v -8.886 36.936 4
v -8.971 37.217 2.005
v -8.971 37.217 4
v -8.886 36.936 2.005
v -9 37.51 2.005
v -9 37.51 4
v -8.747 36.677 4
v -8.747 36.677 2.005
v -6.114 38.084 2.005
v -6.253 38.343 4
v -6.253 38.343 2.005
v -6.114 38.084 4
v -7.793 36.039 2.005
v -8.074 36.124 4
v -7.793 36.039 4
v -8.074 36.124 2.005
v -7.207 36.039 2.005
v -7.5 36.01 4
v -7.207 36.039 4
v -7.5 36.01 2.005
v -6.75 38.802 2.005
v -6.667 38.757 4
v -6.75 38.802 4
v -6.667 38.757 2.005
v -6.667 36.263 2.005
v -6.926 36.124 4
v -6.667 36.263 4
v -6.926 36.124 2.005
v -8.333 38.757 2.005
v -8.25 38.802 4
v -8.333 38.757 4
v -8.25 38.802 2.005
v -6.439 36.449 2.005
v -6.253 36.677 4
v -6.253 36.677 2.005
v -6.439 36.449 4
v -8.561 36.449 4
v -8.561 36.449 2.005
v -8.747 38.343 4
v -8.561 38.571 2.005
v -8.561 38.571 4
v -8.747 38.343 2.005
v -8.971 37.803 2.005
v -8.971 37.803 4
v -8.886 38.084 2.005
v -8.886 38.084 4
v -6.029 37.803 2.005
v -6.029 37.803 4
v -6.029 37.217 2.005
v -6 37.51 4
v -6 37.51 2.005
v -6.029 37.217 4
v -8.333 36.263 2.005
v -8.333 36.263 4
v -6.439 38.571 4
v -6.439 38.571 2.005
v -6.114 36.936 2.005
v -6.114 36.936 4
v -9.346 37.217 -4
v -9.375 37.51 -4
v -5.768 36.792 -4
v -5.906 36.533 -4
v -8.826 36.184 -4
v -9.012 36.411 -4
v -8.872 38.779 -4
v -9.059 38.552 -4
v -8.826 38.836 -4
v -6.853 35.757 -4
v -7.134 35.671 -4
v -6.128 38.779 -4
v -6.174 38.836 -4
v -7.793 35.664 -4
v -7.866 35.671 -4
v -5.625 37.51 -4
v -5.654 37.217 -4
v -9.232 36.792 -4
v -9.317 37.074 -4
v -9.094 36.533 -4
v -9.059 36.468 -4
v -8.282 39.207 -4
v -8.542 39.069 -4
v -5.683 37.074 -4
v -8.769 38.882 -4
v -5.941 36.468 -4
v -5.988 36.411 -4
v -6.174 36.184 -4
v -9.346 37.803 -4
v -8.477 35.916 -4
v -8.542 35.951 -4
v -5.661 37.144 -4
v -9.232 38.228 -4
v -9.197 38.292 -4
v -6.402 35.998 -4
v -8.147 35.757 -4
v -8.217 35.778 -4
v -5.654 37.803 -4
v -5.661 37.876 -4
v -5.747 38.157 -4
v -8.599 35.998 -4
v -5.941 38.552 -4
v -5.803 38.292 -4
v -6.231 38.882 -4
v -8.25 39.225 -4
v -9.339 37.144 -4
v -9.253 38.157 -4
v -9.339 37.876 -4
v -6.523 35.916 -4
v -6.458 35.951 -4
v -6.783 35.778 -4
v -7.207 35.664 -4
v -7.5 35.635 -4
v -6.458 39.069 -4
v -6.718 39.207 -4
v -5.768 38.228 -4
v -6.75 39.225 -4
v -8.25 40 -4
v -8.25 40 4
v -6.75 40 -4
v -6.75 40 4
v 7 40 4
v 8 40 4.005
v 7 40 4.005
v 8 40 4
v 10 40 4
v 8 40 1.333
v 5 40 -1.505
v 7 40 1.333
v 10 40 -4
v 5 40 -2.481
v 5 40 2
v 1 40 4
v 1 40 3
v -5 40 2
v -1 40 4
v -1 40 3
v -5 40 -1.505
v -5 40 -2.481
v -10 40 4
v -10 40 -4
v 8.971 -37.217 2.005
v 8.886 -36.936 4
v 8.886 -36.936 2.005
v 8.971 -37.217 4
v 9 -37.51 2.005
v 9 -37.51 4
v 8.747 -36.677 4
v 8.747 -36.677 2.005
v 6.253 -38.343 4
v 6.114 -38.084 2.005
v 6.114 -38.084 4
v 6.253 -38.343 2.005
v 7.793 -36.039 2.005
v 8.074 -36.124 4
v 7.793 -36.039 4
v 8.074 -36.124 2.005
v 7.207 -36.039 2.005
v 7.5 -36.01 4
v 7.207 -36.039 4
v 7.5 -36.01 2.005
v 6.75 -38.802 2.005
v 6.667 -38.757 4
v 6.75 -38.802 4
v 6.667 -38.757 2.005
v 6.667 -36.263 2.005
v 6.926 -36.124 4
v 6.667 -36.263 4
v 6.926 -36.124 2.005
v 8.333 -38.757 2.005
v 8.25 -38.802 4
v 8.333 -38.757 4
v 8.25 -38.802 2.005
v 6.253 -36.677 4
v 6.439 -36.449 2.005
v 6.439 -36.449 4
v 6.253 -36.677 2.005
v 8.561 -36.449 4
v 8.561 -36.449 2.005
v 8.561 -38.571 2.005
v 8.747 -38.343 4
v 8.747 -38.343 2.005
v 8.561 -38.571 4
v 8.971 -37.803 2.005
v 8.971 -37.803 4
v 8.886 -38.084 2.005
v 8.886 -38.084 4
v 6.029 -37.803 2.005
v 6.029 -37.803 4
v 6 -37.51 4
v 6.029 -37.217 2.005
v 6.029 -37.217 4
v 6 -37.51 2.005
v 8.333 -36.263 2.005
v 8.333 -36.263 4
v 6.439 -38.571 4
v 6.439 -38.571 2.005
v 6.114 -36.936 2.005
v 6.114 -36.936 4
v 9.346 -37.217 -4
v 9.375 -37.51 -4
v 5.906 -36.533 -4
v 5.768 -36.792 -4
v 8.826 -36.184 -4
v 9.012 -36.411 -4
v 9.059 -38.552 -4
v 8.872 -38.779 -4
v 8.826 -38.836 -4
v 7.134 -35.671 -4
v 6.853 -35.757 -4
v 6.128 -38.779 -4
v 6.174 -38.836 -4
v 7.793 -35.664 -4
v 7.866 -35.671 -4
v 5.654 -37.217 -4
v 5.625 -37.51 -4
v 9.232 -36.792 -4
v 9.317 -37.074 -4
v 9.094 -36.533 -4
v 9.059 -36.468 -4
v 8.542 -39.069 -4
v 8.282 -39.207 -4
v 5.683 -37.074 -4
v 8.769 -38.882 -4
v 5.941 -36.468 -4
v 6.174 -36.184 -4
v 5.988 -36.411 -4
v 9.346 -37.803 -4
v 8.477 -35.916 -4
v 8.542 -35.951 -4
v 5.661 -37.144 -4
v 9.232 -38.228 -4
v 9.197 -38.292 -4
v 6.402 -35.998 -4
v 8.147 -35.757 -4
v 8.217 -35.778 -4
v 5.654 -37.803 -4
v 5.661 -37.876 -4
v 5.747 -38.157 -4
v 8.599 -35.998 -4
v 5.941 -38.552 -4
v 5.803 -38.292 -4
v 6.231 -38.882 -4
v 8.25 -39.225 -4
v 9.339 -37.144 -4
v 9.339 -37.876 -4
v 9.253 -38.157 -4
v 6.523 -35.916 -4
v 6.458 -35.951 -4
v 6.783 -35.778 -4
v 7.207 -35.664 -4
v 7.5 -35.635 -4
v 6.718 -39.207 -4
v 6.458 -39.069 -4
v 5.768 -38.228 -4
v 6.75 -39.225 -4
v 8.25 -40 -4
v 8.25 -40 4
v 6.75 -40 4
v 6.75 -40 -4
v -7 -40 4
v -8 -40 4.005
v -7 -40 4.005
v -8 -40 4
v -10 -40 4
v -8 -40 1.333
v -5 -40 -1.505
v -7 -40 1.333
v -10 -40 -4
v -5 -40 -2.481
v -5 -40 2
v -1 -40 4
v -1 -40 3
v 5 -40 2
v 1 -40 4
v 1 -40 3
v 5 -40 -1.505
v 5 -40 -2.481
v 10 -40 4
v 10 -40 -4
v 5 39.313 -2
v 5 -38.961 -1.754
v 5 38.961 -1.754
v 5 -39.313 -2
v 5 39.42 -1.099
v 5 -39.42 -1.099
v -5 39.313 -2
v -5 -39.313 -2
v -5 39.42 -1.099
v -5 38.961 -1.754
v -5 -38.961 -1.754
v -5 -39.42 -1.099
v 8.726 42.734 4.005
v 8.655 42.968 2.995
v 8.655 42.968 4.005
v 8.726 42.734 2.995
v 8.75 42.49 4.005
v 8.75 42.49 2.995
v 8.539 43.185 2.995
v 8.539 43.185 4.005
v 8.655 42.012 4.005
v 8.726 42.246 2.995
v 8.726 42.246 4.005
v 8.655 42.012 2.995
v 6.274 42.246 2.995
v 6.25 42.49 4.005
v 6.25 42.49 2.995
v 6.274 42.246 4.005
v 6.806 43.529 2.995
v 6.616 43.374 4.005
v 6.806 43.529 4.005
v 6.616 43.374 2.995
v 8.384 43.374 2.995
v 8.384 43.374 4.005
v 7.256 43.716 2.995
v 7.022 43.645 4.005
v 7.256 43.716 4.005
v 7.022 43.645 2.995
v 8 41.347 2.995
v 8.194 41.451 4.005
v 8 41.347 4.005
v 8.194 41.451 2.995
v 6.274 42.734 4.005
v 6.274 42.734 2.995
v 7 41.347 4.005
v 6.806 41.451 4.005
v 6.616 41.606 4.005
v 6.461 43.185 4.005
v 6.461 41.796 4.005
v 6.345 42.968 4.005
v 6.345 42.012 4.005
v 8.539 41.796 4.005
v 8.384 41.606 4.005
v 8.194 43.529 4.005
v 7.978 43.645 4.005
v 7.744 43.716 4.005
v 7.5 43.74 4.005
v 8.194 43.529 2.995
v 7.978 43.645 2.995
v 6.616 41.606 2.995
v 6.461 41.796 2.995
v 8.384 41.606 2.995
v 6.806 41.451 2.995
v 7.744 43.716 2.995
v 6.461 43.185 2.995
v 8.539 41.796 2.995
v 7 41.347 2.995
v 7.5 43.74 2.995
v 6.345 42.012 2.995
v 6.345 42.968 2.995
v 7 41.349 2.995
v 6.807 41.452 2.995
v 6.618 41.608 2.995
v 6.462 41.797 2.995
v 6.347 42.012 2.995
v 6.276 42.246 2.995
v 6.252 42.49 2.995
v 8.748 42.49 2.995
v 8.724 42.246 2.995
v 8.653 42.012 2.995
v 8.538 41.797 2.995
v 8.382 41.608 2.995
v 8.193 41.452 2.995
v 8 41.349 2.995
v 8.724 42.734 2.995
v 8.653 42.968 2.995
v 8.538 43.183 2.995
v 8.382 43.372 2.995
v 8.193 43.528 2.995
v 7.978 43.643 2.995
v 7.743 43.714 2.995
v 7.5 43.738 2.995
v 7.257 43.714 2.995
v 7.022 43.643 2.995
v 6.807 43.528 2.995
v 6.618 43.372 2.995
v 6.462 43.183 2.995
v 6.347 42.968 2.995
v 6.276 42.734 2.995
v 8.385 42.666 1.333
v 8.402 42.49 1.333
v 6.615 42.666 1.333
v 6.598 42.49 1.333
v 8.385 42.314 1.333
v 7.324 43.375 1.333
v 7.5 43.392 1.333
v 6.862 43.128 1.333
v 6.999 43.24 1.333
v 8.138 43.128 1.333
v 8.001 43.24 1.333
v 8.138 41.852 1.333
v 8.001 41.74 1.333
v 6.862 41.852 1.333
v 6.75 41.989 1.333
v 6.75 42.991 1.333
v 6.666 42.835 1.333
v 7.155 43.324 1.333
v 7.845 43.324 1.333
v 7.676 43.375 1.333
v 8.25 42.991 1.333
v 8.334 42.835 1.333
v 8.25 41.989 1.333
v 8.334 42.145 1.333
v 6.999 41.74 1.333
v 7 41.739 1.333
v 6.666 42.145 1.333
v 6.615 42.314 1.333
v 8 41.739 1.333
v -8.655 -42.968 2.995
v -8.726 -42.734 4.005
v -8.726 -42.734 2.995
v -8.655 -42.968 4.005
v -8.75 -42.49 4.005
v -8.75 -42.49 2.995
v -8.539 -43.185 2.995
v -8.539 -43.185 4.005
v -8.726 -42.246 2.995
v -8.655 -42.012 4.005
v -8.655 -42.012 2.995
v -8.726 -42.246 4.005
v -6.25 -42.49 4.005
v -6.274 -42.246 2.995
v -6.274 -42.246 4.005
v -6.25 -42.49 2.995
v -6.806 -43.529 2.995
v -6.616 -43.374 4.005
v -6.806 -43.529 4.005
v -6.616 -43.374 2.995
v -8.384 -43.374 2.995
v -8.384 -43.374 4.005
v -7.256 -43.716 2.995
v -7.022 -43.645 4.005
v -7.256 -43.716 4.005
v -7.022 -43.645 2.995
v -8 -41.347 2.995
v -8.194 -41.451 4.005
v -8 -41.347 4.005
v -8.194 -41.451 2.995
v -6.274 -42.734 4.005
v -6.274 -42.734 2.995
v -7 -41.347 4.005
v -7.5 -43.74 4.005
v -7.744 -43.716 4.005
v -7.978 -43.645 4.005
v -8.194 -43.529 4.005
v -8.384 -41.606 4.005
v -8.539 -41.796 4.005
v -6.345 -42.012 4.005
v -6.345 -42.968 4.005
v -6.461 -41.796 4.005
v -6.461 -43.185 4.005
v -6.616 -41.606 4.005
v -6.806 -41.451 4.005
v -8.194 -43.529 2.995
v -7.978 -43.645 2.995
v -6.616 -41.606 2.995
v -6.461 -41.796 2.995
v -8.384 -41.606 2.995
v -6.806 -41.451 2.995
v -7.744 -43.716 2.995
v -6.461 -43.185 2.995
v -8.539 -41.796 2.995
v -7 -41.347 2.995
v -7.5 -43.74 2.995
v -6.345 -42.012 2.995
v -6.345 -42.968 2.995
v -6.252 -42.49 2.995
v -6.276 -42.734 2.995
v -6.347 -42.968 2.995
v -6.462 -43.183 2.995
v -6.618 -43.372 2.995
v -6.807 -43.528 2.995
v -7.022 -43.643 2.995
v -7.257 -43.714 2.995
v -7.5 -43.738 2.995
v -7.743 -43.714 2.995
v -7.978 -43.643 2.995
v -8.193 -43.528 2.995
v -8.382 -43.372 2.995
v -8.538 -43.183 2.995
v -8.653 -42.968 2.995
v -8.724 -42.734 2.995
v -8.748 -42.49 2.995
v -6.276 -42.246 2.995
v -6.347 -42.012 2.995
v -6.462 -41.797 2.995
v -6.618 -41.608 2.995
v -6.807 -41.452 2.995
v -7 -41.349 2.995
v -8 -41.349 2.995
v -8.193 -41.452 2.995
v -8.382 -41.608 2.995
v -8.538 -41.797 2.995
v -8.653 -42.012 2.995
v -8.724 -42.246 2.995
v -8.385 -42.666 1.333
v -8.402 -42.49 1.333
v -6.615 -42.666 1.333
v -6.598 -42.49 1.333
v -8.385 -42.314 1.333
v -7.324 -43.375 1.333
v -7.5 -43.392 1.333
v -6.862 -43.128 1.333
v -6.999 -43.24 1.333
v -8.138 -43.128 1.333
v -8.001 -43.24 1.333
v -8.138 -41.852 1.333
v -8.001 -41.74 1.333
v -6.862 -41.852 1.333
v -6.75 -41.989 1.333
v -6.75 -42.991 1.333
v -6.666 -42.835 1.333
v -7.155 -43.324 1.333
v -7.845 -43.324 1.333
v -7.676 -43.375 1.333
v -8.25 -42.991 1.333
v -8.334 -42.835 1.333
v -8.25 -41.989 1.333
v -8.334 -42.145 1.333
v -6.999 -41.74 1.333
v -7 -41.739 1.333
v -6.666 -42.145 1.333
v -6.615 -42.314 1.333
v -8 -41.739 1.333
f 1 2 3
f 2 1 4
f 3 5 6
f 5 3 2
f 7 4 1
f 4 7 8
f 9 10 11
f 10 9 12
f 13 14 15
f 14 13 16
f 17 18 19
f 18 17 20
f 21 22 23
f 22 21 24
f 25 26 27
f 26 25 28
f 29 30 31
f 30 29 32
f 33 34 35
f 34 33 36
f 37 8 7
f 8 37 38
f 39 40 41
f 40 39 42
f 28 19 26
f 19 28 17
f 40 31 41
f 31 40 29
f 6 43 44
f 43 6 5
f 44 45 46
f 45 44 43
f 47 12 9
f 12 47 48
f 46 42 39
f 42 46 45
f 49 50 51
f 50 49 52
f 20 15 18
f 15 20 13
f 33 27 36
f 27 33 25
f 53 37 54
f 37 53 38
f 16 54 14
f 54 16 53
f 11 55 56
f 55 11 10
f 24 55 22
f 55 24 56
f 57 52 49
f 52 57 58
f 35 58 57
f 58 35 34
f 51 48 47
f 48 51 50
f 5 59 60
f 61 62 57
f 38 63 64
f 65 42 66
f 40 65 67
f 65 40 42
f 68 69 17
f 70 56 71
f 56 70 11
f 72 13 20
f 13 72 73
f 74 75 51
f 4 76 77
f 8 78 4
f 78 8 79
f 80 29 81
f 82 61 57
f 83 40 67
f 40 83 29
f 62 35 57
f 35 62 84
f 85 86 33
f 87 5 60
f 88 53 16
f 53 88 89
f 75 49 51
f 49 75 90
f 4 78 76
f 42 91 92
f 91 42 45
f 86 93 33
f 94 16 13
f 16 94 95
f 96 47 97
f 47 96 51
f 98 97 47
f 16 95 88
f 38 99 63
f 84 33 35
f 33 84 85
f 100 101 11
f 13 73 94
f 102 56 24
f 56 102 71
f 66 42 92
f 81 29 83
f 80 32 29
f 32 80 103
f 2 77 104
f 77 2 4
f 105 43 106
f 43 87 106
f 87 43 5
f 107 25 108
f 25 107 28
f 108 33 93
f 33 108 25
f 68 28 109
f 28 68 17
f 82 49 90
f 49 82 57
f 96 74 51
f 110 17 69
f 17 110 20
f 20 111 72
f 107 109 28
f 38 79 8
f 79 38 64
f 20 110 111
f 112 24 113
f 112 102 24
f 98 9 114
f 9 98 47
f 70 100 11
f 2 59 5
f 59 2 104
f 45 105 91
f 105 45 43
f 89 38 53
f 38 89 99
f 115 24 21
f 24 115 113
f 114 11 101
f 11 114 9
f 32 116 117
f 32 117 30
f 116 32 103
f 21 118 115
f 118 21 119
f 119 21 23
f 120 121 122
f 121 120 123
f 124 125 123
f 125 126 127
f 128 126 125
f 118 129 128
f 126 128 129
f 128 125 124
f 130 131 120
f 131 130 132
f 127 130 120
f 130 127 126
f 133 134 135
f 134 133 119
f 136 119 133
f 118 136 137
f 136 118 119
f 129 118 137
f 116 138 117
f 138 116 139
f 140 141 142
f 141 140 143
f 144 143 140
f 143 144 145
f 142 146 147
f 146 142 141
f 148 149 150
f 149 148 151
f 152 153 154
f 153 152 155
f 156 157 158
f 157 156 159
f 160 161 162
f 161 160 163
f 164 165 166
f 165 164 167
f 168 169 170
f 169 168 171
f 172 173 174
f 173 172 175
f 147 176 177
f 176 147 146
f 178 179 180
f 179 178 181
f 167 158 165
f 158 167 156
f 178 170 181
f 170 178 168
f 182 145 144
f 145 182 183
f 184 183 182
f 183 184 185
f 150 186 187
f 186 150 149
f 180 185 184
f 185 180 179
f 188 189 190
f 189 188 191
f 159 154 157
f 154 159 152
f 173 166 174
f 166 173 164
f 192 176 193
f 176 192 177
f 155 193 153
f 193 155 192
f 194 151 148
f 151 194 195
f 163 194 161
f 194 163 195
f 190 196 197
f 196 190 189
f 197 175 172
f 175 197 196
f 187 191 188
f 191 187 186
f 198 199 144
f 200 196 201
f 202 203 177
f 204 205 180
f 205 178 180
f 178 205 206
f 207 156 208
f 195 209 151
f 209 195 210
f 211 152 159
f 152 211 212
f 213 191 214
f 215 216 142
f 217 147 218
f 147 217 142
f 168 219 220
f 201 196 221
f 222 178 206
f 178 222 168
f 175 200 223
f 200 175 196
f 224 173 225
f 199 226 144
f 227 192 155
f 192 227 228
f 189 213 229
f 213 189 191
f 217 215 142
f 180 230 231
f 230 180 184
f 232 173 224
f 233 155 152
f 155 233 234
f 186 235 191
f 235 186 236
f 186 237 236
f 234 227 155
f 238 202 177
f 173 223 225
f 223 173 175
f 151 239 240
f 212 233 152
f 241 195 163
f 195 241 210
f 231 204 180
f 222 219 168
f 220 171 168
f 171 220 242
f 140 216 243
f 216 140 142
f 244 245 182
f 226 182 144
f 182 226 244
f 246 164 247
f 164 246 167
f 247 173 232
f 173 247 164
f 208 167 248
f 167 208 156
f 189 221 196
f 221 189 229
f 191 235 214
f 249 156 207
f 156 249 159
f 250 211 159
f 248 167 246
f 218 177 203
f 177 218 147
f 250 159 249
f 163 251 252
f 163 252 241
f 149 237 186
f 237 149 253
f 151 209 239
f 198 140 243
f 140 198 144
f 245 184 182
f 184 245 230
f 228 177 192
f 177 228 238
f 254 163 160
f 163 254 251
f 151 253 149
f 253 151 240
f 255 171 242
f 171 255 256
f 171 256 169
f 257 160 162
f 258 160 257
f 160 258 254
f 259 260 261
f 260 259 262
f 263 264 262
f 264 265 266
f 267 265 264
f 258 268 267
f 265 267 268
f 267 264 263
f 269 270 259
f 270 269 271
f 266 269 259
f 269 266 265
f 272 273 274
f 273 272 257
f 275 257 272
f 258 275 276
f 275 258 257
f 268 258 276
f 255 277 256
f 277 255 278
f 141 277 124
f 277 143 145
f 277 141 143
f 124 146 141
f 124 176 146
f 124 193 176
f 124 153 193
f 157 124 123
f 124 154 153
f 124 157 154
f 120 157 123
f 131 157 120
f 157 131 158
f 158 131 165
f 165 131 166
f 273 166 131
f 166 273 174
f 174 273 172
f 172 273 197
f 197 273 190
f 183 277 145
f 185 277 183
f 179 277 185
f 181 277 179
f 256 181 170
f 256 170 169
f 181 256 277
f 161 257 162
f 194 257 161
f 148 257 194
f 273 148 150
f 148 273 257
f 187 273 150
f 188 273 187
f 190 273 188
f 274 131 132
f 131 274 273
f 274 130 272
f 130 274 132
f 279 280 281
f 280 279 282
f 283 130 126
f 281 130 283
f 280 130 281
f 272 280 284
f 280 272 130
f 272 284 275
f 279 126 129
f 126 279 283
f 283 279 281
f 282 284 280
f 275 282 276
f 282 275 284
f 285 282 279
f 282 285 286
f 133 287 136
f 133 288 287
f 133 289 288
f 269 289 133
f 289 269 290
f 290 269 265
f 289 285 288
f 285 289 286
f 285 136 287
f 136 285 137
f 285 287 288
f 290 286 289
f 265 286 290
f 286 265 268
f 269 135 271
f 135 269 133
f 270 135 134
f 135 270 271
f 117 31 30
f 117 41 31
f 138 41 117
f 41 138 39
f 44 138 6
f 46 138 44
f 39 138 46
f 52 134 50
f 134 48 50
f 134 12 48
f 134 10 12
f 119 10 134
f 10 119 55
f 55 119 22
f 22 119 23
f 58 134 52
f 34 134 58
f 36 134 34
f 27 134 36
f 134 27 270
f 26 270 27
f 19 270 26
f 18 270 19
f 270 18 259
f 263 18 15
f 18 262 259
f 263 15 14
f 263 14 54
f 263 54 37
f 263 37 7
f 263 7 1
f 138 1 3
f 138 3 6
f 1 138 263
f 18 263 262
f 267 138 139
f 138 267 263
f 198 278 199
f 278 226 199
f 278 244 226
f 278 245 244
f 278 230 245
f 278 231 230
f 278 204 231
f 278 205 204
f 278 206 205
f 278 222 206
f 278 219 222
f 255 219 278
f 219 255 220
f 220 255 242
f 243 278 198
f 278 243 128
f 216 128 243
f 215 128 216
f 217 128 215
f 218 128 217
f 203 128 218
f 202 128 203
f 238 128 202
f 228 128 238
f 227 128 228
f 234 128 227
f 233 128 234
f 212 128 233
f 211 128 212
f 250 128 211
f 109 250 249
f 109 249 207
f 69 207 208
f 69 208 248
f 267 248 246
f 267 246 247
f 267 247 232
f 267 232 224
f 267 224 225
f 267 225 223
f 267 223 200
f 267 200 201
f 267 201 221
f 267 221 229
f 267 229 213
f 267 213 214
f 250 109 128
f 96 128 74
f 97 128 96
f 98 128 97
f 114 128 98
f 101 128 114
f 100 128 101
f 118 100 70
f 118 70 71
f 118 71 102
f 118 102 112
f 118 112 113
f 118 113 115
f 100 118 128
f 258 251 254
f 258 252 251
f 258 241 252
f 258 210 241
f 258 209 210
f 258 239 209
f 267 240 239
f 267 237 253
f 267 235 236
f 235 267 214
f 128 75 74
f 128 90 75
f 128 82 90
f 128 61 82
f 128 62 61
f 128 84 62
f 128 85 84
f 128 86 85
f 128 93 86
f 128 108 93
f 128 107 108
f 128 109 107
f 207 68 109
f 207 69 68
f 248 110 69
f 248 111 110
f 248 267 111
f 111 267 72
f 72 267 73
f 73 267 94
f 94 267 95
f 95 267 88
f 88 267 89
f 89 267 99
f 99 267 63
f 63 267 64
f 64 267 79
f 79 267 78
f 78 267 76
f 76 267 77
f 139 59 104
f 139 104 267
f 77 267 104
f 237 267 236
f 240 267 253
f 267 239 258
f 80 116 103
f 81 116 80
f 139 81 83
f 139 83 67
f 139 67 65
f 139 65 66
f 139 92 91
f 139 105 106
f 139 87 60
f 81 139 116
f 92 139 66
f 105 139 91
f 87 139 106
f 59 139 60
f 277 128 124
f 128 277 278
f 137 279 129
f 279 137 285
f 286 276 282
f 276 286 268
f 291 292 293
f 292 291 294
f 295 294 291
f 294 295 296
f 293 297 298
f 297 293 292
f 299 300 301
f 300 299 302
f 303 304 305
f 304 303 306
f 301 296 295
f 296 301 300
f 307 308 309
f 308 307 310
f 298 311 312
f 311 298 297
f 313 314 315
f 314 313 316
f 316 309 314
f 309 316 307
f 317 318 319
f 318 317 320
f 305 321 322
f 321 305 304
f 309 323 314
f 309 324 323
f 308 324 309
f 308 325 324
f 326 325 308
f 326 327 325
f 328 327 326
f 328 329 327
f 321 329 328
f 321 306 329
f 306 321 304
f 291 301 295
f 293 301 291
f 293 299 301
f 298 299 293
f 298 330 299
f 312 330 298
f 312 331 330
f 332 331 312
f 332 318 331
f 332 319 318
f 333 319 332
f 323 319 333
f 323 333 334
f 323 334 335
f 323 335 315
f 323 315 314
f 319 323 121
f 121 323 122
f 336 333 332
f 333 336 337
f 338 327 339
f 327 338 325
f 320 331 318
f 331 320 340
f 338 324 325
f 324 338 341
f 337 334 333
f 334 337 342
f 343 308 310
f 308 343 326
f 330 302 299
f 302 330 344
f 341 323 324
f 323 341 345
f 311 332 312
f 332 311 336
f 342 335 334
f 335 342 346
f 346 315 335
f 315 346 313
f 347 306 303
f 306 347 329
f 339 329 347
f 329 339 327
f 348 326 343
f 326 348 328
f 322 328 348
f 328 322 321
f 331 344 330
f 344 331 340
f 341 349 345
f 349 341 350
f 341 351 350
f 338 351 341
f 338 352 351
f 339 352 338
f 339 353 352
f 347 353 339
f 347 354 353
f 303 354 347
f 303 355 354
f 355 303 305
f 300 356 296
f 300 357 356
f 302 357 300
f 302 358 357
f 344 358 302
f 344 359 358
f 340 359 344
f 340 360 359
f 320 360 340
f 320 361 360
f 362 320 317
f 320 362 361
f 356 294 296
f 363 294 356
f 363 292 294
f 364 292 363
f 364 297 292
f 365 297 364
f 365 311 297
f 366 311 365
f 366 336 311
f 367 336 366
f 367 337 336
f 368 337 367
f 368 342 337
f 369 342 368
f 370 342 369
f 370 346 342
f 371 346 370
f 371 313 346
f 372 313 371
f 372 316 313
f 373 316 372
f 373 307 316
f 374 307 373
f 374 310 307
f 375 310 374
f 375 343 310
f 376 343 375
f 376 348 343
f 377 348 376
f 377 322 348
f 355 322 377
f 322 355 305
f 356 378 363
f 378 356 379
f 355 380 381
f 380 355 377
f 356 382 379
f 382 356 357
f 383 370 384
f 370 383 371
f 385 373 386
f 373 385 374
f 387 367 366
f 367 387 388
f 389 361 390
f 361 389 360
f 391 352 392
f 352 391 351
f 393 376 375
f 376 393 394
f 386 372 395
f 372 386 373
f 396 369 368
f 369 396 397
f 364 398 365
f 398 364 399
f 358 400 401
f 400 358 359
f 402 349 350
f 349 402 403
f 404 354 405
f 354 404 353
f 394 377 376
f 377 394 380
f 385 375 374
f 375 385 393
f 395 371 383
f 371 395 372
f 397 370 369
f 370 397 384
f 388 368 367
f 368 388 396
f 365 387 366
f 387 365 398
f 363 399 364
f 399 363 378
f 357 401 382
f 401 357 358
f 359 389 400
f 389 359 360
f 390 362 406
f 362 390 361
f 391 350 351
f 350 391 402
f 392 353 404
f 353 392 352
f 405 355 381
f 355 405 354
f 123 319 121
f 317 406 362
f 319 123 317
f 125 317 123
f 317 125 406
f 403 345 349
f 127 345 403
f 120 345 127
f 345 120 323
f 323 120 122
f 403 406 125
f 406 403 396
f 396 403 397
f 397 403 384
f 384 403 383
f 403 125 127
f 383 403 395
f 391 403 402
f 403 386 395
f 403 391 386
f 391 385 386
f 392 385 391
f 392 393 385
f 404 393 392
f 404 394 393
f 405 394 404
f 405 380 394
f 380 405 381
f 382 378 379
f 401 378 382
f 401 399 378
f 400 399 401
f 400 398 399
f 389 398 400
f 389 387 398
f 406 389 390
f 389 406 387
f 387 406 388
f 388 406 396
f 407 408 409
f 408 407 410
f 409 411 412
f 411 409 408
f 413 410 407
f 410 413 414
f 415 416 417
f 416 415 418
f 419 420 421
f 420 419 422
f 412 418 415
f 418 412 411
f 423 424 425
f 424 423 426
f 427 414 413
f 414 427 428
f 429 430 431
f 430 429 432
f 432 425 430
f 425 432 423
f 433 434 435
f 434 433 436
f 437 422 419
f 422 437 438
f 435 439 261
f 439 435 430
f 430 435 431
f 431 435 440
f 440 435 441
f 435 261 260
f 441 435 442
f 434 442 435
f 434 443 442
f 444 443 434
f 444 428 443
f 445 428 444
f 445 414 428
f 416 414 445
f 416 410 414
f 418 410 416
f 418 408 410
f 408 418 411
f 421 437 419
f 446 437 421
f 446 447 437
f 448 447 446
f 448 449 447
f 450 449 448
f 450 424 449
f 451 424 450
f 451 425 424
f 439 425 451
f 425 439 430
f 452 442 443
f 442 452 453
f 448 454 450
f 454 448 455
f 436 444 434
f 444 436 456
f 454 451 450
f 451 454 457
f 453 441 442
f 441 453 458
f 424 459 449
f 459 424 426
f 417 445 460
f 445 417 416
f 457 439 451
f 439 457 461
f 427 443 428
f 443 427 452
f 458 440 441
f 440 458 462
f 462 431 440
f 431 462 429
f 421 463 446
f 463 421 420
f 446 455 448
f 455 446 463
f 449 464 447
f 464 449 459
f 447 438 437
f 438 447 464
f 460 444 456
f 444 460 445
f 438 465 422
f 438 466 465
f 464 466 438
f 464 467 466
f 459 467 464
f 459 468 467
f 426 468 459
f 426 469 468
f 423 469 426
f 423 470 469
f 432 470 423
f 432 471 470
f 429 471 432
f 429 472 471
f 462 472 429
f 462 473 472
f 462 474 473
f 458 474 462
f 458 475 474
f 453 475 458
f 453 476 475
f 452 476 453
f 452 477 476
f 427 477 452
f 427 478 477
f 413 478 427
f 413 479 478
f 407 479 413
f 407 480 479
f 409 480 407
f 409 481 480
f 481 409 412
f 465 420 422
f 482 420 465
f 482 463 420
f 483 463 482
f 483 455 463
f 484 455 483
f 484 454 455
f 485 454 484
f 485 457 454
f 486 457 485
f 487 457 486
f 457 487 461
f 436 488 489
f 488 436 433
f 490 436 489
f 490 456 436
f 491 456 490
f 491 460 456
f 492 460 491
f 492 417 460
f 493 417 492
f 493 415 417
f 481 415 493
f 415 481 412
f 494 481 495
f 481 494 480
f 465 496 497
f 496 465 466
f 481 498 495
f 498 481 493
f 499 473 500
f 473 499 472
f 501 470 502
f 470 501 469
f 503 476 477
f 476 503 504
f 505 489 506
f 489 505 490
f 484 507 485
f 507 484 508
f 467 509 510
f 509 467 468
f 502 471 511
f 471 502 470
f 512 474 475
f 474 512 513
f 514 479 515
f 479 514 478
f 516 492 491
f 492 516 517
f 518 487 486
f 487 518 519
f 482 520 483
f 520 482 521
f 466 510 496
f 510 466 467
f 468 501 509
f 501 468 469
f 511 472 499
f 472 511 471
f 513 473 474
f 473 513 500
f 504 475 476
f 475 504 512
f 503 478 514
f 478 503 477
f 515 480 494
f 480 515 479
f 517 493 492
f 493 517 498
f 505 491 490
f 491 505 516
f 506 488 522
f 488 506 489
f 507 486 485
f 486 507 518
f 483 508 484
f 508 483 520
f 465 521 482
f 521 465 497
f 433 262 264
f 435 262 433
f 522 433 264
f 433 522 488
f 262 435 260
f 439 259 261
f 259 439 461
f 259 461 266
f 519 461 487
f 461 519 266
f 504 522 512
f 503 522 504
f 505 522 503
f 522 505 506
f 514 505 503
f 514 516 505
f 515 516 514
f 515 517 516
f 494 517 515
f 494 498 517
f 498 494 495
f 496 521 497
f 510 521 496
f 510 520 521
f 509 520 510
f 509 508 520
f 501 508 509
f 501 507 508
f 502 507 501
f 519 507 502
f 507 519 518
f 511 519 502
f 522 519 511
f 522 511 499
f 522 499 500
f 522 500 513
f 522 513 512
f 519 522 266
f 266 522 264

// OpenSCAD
/*
    straight two grid tile train tube track
*/
include <train_tube_track.scad>;

straight_track_double_plug(2*grid);
